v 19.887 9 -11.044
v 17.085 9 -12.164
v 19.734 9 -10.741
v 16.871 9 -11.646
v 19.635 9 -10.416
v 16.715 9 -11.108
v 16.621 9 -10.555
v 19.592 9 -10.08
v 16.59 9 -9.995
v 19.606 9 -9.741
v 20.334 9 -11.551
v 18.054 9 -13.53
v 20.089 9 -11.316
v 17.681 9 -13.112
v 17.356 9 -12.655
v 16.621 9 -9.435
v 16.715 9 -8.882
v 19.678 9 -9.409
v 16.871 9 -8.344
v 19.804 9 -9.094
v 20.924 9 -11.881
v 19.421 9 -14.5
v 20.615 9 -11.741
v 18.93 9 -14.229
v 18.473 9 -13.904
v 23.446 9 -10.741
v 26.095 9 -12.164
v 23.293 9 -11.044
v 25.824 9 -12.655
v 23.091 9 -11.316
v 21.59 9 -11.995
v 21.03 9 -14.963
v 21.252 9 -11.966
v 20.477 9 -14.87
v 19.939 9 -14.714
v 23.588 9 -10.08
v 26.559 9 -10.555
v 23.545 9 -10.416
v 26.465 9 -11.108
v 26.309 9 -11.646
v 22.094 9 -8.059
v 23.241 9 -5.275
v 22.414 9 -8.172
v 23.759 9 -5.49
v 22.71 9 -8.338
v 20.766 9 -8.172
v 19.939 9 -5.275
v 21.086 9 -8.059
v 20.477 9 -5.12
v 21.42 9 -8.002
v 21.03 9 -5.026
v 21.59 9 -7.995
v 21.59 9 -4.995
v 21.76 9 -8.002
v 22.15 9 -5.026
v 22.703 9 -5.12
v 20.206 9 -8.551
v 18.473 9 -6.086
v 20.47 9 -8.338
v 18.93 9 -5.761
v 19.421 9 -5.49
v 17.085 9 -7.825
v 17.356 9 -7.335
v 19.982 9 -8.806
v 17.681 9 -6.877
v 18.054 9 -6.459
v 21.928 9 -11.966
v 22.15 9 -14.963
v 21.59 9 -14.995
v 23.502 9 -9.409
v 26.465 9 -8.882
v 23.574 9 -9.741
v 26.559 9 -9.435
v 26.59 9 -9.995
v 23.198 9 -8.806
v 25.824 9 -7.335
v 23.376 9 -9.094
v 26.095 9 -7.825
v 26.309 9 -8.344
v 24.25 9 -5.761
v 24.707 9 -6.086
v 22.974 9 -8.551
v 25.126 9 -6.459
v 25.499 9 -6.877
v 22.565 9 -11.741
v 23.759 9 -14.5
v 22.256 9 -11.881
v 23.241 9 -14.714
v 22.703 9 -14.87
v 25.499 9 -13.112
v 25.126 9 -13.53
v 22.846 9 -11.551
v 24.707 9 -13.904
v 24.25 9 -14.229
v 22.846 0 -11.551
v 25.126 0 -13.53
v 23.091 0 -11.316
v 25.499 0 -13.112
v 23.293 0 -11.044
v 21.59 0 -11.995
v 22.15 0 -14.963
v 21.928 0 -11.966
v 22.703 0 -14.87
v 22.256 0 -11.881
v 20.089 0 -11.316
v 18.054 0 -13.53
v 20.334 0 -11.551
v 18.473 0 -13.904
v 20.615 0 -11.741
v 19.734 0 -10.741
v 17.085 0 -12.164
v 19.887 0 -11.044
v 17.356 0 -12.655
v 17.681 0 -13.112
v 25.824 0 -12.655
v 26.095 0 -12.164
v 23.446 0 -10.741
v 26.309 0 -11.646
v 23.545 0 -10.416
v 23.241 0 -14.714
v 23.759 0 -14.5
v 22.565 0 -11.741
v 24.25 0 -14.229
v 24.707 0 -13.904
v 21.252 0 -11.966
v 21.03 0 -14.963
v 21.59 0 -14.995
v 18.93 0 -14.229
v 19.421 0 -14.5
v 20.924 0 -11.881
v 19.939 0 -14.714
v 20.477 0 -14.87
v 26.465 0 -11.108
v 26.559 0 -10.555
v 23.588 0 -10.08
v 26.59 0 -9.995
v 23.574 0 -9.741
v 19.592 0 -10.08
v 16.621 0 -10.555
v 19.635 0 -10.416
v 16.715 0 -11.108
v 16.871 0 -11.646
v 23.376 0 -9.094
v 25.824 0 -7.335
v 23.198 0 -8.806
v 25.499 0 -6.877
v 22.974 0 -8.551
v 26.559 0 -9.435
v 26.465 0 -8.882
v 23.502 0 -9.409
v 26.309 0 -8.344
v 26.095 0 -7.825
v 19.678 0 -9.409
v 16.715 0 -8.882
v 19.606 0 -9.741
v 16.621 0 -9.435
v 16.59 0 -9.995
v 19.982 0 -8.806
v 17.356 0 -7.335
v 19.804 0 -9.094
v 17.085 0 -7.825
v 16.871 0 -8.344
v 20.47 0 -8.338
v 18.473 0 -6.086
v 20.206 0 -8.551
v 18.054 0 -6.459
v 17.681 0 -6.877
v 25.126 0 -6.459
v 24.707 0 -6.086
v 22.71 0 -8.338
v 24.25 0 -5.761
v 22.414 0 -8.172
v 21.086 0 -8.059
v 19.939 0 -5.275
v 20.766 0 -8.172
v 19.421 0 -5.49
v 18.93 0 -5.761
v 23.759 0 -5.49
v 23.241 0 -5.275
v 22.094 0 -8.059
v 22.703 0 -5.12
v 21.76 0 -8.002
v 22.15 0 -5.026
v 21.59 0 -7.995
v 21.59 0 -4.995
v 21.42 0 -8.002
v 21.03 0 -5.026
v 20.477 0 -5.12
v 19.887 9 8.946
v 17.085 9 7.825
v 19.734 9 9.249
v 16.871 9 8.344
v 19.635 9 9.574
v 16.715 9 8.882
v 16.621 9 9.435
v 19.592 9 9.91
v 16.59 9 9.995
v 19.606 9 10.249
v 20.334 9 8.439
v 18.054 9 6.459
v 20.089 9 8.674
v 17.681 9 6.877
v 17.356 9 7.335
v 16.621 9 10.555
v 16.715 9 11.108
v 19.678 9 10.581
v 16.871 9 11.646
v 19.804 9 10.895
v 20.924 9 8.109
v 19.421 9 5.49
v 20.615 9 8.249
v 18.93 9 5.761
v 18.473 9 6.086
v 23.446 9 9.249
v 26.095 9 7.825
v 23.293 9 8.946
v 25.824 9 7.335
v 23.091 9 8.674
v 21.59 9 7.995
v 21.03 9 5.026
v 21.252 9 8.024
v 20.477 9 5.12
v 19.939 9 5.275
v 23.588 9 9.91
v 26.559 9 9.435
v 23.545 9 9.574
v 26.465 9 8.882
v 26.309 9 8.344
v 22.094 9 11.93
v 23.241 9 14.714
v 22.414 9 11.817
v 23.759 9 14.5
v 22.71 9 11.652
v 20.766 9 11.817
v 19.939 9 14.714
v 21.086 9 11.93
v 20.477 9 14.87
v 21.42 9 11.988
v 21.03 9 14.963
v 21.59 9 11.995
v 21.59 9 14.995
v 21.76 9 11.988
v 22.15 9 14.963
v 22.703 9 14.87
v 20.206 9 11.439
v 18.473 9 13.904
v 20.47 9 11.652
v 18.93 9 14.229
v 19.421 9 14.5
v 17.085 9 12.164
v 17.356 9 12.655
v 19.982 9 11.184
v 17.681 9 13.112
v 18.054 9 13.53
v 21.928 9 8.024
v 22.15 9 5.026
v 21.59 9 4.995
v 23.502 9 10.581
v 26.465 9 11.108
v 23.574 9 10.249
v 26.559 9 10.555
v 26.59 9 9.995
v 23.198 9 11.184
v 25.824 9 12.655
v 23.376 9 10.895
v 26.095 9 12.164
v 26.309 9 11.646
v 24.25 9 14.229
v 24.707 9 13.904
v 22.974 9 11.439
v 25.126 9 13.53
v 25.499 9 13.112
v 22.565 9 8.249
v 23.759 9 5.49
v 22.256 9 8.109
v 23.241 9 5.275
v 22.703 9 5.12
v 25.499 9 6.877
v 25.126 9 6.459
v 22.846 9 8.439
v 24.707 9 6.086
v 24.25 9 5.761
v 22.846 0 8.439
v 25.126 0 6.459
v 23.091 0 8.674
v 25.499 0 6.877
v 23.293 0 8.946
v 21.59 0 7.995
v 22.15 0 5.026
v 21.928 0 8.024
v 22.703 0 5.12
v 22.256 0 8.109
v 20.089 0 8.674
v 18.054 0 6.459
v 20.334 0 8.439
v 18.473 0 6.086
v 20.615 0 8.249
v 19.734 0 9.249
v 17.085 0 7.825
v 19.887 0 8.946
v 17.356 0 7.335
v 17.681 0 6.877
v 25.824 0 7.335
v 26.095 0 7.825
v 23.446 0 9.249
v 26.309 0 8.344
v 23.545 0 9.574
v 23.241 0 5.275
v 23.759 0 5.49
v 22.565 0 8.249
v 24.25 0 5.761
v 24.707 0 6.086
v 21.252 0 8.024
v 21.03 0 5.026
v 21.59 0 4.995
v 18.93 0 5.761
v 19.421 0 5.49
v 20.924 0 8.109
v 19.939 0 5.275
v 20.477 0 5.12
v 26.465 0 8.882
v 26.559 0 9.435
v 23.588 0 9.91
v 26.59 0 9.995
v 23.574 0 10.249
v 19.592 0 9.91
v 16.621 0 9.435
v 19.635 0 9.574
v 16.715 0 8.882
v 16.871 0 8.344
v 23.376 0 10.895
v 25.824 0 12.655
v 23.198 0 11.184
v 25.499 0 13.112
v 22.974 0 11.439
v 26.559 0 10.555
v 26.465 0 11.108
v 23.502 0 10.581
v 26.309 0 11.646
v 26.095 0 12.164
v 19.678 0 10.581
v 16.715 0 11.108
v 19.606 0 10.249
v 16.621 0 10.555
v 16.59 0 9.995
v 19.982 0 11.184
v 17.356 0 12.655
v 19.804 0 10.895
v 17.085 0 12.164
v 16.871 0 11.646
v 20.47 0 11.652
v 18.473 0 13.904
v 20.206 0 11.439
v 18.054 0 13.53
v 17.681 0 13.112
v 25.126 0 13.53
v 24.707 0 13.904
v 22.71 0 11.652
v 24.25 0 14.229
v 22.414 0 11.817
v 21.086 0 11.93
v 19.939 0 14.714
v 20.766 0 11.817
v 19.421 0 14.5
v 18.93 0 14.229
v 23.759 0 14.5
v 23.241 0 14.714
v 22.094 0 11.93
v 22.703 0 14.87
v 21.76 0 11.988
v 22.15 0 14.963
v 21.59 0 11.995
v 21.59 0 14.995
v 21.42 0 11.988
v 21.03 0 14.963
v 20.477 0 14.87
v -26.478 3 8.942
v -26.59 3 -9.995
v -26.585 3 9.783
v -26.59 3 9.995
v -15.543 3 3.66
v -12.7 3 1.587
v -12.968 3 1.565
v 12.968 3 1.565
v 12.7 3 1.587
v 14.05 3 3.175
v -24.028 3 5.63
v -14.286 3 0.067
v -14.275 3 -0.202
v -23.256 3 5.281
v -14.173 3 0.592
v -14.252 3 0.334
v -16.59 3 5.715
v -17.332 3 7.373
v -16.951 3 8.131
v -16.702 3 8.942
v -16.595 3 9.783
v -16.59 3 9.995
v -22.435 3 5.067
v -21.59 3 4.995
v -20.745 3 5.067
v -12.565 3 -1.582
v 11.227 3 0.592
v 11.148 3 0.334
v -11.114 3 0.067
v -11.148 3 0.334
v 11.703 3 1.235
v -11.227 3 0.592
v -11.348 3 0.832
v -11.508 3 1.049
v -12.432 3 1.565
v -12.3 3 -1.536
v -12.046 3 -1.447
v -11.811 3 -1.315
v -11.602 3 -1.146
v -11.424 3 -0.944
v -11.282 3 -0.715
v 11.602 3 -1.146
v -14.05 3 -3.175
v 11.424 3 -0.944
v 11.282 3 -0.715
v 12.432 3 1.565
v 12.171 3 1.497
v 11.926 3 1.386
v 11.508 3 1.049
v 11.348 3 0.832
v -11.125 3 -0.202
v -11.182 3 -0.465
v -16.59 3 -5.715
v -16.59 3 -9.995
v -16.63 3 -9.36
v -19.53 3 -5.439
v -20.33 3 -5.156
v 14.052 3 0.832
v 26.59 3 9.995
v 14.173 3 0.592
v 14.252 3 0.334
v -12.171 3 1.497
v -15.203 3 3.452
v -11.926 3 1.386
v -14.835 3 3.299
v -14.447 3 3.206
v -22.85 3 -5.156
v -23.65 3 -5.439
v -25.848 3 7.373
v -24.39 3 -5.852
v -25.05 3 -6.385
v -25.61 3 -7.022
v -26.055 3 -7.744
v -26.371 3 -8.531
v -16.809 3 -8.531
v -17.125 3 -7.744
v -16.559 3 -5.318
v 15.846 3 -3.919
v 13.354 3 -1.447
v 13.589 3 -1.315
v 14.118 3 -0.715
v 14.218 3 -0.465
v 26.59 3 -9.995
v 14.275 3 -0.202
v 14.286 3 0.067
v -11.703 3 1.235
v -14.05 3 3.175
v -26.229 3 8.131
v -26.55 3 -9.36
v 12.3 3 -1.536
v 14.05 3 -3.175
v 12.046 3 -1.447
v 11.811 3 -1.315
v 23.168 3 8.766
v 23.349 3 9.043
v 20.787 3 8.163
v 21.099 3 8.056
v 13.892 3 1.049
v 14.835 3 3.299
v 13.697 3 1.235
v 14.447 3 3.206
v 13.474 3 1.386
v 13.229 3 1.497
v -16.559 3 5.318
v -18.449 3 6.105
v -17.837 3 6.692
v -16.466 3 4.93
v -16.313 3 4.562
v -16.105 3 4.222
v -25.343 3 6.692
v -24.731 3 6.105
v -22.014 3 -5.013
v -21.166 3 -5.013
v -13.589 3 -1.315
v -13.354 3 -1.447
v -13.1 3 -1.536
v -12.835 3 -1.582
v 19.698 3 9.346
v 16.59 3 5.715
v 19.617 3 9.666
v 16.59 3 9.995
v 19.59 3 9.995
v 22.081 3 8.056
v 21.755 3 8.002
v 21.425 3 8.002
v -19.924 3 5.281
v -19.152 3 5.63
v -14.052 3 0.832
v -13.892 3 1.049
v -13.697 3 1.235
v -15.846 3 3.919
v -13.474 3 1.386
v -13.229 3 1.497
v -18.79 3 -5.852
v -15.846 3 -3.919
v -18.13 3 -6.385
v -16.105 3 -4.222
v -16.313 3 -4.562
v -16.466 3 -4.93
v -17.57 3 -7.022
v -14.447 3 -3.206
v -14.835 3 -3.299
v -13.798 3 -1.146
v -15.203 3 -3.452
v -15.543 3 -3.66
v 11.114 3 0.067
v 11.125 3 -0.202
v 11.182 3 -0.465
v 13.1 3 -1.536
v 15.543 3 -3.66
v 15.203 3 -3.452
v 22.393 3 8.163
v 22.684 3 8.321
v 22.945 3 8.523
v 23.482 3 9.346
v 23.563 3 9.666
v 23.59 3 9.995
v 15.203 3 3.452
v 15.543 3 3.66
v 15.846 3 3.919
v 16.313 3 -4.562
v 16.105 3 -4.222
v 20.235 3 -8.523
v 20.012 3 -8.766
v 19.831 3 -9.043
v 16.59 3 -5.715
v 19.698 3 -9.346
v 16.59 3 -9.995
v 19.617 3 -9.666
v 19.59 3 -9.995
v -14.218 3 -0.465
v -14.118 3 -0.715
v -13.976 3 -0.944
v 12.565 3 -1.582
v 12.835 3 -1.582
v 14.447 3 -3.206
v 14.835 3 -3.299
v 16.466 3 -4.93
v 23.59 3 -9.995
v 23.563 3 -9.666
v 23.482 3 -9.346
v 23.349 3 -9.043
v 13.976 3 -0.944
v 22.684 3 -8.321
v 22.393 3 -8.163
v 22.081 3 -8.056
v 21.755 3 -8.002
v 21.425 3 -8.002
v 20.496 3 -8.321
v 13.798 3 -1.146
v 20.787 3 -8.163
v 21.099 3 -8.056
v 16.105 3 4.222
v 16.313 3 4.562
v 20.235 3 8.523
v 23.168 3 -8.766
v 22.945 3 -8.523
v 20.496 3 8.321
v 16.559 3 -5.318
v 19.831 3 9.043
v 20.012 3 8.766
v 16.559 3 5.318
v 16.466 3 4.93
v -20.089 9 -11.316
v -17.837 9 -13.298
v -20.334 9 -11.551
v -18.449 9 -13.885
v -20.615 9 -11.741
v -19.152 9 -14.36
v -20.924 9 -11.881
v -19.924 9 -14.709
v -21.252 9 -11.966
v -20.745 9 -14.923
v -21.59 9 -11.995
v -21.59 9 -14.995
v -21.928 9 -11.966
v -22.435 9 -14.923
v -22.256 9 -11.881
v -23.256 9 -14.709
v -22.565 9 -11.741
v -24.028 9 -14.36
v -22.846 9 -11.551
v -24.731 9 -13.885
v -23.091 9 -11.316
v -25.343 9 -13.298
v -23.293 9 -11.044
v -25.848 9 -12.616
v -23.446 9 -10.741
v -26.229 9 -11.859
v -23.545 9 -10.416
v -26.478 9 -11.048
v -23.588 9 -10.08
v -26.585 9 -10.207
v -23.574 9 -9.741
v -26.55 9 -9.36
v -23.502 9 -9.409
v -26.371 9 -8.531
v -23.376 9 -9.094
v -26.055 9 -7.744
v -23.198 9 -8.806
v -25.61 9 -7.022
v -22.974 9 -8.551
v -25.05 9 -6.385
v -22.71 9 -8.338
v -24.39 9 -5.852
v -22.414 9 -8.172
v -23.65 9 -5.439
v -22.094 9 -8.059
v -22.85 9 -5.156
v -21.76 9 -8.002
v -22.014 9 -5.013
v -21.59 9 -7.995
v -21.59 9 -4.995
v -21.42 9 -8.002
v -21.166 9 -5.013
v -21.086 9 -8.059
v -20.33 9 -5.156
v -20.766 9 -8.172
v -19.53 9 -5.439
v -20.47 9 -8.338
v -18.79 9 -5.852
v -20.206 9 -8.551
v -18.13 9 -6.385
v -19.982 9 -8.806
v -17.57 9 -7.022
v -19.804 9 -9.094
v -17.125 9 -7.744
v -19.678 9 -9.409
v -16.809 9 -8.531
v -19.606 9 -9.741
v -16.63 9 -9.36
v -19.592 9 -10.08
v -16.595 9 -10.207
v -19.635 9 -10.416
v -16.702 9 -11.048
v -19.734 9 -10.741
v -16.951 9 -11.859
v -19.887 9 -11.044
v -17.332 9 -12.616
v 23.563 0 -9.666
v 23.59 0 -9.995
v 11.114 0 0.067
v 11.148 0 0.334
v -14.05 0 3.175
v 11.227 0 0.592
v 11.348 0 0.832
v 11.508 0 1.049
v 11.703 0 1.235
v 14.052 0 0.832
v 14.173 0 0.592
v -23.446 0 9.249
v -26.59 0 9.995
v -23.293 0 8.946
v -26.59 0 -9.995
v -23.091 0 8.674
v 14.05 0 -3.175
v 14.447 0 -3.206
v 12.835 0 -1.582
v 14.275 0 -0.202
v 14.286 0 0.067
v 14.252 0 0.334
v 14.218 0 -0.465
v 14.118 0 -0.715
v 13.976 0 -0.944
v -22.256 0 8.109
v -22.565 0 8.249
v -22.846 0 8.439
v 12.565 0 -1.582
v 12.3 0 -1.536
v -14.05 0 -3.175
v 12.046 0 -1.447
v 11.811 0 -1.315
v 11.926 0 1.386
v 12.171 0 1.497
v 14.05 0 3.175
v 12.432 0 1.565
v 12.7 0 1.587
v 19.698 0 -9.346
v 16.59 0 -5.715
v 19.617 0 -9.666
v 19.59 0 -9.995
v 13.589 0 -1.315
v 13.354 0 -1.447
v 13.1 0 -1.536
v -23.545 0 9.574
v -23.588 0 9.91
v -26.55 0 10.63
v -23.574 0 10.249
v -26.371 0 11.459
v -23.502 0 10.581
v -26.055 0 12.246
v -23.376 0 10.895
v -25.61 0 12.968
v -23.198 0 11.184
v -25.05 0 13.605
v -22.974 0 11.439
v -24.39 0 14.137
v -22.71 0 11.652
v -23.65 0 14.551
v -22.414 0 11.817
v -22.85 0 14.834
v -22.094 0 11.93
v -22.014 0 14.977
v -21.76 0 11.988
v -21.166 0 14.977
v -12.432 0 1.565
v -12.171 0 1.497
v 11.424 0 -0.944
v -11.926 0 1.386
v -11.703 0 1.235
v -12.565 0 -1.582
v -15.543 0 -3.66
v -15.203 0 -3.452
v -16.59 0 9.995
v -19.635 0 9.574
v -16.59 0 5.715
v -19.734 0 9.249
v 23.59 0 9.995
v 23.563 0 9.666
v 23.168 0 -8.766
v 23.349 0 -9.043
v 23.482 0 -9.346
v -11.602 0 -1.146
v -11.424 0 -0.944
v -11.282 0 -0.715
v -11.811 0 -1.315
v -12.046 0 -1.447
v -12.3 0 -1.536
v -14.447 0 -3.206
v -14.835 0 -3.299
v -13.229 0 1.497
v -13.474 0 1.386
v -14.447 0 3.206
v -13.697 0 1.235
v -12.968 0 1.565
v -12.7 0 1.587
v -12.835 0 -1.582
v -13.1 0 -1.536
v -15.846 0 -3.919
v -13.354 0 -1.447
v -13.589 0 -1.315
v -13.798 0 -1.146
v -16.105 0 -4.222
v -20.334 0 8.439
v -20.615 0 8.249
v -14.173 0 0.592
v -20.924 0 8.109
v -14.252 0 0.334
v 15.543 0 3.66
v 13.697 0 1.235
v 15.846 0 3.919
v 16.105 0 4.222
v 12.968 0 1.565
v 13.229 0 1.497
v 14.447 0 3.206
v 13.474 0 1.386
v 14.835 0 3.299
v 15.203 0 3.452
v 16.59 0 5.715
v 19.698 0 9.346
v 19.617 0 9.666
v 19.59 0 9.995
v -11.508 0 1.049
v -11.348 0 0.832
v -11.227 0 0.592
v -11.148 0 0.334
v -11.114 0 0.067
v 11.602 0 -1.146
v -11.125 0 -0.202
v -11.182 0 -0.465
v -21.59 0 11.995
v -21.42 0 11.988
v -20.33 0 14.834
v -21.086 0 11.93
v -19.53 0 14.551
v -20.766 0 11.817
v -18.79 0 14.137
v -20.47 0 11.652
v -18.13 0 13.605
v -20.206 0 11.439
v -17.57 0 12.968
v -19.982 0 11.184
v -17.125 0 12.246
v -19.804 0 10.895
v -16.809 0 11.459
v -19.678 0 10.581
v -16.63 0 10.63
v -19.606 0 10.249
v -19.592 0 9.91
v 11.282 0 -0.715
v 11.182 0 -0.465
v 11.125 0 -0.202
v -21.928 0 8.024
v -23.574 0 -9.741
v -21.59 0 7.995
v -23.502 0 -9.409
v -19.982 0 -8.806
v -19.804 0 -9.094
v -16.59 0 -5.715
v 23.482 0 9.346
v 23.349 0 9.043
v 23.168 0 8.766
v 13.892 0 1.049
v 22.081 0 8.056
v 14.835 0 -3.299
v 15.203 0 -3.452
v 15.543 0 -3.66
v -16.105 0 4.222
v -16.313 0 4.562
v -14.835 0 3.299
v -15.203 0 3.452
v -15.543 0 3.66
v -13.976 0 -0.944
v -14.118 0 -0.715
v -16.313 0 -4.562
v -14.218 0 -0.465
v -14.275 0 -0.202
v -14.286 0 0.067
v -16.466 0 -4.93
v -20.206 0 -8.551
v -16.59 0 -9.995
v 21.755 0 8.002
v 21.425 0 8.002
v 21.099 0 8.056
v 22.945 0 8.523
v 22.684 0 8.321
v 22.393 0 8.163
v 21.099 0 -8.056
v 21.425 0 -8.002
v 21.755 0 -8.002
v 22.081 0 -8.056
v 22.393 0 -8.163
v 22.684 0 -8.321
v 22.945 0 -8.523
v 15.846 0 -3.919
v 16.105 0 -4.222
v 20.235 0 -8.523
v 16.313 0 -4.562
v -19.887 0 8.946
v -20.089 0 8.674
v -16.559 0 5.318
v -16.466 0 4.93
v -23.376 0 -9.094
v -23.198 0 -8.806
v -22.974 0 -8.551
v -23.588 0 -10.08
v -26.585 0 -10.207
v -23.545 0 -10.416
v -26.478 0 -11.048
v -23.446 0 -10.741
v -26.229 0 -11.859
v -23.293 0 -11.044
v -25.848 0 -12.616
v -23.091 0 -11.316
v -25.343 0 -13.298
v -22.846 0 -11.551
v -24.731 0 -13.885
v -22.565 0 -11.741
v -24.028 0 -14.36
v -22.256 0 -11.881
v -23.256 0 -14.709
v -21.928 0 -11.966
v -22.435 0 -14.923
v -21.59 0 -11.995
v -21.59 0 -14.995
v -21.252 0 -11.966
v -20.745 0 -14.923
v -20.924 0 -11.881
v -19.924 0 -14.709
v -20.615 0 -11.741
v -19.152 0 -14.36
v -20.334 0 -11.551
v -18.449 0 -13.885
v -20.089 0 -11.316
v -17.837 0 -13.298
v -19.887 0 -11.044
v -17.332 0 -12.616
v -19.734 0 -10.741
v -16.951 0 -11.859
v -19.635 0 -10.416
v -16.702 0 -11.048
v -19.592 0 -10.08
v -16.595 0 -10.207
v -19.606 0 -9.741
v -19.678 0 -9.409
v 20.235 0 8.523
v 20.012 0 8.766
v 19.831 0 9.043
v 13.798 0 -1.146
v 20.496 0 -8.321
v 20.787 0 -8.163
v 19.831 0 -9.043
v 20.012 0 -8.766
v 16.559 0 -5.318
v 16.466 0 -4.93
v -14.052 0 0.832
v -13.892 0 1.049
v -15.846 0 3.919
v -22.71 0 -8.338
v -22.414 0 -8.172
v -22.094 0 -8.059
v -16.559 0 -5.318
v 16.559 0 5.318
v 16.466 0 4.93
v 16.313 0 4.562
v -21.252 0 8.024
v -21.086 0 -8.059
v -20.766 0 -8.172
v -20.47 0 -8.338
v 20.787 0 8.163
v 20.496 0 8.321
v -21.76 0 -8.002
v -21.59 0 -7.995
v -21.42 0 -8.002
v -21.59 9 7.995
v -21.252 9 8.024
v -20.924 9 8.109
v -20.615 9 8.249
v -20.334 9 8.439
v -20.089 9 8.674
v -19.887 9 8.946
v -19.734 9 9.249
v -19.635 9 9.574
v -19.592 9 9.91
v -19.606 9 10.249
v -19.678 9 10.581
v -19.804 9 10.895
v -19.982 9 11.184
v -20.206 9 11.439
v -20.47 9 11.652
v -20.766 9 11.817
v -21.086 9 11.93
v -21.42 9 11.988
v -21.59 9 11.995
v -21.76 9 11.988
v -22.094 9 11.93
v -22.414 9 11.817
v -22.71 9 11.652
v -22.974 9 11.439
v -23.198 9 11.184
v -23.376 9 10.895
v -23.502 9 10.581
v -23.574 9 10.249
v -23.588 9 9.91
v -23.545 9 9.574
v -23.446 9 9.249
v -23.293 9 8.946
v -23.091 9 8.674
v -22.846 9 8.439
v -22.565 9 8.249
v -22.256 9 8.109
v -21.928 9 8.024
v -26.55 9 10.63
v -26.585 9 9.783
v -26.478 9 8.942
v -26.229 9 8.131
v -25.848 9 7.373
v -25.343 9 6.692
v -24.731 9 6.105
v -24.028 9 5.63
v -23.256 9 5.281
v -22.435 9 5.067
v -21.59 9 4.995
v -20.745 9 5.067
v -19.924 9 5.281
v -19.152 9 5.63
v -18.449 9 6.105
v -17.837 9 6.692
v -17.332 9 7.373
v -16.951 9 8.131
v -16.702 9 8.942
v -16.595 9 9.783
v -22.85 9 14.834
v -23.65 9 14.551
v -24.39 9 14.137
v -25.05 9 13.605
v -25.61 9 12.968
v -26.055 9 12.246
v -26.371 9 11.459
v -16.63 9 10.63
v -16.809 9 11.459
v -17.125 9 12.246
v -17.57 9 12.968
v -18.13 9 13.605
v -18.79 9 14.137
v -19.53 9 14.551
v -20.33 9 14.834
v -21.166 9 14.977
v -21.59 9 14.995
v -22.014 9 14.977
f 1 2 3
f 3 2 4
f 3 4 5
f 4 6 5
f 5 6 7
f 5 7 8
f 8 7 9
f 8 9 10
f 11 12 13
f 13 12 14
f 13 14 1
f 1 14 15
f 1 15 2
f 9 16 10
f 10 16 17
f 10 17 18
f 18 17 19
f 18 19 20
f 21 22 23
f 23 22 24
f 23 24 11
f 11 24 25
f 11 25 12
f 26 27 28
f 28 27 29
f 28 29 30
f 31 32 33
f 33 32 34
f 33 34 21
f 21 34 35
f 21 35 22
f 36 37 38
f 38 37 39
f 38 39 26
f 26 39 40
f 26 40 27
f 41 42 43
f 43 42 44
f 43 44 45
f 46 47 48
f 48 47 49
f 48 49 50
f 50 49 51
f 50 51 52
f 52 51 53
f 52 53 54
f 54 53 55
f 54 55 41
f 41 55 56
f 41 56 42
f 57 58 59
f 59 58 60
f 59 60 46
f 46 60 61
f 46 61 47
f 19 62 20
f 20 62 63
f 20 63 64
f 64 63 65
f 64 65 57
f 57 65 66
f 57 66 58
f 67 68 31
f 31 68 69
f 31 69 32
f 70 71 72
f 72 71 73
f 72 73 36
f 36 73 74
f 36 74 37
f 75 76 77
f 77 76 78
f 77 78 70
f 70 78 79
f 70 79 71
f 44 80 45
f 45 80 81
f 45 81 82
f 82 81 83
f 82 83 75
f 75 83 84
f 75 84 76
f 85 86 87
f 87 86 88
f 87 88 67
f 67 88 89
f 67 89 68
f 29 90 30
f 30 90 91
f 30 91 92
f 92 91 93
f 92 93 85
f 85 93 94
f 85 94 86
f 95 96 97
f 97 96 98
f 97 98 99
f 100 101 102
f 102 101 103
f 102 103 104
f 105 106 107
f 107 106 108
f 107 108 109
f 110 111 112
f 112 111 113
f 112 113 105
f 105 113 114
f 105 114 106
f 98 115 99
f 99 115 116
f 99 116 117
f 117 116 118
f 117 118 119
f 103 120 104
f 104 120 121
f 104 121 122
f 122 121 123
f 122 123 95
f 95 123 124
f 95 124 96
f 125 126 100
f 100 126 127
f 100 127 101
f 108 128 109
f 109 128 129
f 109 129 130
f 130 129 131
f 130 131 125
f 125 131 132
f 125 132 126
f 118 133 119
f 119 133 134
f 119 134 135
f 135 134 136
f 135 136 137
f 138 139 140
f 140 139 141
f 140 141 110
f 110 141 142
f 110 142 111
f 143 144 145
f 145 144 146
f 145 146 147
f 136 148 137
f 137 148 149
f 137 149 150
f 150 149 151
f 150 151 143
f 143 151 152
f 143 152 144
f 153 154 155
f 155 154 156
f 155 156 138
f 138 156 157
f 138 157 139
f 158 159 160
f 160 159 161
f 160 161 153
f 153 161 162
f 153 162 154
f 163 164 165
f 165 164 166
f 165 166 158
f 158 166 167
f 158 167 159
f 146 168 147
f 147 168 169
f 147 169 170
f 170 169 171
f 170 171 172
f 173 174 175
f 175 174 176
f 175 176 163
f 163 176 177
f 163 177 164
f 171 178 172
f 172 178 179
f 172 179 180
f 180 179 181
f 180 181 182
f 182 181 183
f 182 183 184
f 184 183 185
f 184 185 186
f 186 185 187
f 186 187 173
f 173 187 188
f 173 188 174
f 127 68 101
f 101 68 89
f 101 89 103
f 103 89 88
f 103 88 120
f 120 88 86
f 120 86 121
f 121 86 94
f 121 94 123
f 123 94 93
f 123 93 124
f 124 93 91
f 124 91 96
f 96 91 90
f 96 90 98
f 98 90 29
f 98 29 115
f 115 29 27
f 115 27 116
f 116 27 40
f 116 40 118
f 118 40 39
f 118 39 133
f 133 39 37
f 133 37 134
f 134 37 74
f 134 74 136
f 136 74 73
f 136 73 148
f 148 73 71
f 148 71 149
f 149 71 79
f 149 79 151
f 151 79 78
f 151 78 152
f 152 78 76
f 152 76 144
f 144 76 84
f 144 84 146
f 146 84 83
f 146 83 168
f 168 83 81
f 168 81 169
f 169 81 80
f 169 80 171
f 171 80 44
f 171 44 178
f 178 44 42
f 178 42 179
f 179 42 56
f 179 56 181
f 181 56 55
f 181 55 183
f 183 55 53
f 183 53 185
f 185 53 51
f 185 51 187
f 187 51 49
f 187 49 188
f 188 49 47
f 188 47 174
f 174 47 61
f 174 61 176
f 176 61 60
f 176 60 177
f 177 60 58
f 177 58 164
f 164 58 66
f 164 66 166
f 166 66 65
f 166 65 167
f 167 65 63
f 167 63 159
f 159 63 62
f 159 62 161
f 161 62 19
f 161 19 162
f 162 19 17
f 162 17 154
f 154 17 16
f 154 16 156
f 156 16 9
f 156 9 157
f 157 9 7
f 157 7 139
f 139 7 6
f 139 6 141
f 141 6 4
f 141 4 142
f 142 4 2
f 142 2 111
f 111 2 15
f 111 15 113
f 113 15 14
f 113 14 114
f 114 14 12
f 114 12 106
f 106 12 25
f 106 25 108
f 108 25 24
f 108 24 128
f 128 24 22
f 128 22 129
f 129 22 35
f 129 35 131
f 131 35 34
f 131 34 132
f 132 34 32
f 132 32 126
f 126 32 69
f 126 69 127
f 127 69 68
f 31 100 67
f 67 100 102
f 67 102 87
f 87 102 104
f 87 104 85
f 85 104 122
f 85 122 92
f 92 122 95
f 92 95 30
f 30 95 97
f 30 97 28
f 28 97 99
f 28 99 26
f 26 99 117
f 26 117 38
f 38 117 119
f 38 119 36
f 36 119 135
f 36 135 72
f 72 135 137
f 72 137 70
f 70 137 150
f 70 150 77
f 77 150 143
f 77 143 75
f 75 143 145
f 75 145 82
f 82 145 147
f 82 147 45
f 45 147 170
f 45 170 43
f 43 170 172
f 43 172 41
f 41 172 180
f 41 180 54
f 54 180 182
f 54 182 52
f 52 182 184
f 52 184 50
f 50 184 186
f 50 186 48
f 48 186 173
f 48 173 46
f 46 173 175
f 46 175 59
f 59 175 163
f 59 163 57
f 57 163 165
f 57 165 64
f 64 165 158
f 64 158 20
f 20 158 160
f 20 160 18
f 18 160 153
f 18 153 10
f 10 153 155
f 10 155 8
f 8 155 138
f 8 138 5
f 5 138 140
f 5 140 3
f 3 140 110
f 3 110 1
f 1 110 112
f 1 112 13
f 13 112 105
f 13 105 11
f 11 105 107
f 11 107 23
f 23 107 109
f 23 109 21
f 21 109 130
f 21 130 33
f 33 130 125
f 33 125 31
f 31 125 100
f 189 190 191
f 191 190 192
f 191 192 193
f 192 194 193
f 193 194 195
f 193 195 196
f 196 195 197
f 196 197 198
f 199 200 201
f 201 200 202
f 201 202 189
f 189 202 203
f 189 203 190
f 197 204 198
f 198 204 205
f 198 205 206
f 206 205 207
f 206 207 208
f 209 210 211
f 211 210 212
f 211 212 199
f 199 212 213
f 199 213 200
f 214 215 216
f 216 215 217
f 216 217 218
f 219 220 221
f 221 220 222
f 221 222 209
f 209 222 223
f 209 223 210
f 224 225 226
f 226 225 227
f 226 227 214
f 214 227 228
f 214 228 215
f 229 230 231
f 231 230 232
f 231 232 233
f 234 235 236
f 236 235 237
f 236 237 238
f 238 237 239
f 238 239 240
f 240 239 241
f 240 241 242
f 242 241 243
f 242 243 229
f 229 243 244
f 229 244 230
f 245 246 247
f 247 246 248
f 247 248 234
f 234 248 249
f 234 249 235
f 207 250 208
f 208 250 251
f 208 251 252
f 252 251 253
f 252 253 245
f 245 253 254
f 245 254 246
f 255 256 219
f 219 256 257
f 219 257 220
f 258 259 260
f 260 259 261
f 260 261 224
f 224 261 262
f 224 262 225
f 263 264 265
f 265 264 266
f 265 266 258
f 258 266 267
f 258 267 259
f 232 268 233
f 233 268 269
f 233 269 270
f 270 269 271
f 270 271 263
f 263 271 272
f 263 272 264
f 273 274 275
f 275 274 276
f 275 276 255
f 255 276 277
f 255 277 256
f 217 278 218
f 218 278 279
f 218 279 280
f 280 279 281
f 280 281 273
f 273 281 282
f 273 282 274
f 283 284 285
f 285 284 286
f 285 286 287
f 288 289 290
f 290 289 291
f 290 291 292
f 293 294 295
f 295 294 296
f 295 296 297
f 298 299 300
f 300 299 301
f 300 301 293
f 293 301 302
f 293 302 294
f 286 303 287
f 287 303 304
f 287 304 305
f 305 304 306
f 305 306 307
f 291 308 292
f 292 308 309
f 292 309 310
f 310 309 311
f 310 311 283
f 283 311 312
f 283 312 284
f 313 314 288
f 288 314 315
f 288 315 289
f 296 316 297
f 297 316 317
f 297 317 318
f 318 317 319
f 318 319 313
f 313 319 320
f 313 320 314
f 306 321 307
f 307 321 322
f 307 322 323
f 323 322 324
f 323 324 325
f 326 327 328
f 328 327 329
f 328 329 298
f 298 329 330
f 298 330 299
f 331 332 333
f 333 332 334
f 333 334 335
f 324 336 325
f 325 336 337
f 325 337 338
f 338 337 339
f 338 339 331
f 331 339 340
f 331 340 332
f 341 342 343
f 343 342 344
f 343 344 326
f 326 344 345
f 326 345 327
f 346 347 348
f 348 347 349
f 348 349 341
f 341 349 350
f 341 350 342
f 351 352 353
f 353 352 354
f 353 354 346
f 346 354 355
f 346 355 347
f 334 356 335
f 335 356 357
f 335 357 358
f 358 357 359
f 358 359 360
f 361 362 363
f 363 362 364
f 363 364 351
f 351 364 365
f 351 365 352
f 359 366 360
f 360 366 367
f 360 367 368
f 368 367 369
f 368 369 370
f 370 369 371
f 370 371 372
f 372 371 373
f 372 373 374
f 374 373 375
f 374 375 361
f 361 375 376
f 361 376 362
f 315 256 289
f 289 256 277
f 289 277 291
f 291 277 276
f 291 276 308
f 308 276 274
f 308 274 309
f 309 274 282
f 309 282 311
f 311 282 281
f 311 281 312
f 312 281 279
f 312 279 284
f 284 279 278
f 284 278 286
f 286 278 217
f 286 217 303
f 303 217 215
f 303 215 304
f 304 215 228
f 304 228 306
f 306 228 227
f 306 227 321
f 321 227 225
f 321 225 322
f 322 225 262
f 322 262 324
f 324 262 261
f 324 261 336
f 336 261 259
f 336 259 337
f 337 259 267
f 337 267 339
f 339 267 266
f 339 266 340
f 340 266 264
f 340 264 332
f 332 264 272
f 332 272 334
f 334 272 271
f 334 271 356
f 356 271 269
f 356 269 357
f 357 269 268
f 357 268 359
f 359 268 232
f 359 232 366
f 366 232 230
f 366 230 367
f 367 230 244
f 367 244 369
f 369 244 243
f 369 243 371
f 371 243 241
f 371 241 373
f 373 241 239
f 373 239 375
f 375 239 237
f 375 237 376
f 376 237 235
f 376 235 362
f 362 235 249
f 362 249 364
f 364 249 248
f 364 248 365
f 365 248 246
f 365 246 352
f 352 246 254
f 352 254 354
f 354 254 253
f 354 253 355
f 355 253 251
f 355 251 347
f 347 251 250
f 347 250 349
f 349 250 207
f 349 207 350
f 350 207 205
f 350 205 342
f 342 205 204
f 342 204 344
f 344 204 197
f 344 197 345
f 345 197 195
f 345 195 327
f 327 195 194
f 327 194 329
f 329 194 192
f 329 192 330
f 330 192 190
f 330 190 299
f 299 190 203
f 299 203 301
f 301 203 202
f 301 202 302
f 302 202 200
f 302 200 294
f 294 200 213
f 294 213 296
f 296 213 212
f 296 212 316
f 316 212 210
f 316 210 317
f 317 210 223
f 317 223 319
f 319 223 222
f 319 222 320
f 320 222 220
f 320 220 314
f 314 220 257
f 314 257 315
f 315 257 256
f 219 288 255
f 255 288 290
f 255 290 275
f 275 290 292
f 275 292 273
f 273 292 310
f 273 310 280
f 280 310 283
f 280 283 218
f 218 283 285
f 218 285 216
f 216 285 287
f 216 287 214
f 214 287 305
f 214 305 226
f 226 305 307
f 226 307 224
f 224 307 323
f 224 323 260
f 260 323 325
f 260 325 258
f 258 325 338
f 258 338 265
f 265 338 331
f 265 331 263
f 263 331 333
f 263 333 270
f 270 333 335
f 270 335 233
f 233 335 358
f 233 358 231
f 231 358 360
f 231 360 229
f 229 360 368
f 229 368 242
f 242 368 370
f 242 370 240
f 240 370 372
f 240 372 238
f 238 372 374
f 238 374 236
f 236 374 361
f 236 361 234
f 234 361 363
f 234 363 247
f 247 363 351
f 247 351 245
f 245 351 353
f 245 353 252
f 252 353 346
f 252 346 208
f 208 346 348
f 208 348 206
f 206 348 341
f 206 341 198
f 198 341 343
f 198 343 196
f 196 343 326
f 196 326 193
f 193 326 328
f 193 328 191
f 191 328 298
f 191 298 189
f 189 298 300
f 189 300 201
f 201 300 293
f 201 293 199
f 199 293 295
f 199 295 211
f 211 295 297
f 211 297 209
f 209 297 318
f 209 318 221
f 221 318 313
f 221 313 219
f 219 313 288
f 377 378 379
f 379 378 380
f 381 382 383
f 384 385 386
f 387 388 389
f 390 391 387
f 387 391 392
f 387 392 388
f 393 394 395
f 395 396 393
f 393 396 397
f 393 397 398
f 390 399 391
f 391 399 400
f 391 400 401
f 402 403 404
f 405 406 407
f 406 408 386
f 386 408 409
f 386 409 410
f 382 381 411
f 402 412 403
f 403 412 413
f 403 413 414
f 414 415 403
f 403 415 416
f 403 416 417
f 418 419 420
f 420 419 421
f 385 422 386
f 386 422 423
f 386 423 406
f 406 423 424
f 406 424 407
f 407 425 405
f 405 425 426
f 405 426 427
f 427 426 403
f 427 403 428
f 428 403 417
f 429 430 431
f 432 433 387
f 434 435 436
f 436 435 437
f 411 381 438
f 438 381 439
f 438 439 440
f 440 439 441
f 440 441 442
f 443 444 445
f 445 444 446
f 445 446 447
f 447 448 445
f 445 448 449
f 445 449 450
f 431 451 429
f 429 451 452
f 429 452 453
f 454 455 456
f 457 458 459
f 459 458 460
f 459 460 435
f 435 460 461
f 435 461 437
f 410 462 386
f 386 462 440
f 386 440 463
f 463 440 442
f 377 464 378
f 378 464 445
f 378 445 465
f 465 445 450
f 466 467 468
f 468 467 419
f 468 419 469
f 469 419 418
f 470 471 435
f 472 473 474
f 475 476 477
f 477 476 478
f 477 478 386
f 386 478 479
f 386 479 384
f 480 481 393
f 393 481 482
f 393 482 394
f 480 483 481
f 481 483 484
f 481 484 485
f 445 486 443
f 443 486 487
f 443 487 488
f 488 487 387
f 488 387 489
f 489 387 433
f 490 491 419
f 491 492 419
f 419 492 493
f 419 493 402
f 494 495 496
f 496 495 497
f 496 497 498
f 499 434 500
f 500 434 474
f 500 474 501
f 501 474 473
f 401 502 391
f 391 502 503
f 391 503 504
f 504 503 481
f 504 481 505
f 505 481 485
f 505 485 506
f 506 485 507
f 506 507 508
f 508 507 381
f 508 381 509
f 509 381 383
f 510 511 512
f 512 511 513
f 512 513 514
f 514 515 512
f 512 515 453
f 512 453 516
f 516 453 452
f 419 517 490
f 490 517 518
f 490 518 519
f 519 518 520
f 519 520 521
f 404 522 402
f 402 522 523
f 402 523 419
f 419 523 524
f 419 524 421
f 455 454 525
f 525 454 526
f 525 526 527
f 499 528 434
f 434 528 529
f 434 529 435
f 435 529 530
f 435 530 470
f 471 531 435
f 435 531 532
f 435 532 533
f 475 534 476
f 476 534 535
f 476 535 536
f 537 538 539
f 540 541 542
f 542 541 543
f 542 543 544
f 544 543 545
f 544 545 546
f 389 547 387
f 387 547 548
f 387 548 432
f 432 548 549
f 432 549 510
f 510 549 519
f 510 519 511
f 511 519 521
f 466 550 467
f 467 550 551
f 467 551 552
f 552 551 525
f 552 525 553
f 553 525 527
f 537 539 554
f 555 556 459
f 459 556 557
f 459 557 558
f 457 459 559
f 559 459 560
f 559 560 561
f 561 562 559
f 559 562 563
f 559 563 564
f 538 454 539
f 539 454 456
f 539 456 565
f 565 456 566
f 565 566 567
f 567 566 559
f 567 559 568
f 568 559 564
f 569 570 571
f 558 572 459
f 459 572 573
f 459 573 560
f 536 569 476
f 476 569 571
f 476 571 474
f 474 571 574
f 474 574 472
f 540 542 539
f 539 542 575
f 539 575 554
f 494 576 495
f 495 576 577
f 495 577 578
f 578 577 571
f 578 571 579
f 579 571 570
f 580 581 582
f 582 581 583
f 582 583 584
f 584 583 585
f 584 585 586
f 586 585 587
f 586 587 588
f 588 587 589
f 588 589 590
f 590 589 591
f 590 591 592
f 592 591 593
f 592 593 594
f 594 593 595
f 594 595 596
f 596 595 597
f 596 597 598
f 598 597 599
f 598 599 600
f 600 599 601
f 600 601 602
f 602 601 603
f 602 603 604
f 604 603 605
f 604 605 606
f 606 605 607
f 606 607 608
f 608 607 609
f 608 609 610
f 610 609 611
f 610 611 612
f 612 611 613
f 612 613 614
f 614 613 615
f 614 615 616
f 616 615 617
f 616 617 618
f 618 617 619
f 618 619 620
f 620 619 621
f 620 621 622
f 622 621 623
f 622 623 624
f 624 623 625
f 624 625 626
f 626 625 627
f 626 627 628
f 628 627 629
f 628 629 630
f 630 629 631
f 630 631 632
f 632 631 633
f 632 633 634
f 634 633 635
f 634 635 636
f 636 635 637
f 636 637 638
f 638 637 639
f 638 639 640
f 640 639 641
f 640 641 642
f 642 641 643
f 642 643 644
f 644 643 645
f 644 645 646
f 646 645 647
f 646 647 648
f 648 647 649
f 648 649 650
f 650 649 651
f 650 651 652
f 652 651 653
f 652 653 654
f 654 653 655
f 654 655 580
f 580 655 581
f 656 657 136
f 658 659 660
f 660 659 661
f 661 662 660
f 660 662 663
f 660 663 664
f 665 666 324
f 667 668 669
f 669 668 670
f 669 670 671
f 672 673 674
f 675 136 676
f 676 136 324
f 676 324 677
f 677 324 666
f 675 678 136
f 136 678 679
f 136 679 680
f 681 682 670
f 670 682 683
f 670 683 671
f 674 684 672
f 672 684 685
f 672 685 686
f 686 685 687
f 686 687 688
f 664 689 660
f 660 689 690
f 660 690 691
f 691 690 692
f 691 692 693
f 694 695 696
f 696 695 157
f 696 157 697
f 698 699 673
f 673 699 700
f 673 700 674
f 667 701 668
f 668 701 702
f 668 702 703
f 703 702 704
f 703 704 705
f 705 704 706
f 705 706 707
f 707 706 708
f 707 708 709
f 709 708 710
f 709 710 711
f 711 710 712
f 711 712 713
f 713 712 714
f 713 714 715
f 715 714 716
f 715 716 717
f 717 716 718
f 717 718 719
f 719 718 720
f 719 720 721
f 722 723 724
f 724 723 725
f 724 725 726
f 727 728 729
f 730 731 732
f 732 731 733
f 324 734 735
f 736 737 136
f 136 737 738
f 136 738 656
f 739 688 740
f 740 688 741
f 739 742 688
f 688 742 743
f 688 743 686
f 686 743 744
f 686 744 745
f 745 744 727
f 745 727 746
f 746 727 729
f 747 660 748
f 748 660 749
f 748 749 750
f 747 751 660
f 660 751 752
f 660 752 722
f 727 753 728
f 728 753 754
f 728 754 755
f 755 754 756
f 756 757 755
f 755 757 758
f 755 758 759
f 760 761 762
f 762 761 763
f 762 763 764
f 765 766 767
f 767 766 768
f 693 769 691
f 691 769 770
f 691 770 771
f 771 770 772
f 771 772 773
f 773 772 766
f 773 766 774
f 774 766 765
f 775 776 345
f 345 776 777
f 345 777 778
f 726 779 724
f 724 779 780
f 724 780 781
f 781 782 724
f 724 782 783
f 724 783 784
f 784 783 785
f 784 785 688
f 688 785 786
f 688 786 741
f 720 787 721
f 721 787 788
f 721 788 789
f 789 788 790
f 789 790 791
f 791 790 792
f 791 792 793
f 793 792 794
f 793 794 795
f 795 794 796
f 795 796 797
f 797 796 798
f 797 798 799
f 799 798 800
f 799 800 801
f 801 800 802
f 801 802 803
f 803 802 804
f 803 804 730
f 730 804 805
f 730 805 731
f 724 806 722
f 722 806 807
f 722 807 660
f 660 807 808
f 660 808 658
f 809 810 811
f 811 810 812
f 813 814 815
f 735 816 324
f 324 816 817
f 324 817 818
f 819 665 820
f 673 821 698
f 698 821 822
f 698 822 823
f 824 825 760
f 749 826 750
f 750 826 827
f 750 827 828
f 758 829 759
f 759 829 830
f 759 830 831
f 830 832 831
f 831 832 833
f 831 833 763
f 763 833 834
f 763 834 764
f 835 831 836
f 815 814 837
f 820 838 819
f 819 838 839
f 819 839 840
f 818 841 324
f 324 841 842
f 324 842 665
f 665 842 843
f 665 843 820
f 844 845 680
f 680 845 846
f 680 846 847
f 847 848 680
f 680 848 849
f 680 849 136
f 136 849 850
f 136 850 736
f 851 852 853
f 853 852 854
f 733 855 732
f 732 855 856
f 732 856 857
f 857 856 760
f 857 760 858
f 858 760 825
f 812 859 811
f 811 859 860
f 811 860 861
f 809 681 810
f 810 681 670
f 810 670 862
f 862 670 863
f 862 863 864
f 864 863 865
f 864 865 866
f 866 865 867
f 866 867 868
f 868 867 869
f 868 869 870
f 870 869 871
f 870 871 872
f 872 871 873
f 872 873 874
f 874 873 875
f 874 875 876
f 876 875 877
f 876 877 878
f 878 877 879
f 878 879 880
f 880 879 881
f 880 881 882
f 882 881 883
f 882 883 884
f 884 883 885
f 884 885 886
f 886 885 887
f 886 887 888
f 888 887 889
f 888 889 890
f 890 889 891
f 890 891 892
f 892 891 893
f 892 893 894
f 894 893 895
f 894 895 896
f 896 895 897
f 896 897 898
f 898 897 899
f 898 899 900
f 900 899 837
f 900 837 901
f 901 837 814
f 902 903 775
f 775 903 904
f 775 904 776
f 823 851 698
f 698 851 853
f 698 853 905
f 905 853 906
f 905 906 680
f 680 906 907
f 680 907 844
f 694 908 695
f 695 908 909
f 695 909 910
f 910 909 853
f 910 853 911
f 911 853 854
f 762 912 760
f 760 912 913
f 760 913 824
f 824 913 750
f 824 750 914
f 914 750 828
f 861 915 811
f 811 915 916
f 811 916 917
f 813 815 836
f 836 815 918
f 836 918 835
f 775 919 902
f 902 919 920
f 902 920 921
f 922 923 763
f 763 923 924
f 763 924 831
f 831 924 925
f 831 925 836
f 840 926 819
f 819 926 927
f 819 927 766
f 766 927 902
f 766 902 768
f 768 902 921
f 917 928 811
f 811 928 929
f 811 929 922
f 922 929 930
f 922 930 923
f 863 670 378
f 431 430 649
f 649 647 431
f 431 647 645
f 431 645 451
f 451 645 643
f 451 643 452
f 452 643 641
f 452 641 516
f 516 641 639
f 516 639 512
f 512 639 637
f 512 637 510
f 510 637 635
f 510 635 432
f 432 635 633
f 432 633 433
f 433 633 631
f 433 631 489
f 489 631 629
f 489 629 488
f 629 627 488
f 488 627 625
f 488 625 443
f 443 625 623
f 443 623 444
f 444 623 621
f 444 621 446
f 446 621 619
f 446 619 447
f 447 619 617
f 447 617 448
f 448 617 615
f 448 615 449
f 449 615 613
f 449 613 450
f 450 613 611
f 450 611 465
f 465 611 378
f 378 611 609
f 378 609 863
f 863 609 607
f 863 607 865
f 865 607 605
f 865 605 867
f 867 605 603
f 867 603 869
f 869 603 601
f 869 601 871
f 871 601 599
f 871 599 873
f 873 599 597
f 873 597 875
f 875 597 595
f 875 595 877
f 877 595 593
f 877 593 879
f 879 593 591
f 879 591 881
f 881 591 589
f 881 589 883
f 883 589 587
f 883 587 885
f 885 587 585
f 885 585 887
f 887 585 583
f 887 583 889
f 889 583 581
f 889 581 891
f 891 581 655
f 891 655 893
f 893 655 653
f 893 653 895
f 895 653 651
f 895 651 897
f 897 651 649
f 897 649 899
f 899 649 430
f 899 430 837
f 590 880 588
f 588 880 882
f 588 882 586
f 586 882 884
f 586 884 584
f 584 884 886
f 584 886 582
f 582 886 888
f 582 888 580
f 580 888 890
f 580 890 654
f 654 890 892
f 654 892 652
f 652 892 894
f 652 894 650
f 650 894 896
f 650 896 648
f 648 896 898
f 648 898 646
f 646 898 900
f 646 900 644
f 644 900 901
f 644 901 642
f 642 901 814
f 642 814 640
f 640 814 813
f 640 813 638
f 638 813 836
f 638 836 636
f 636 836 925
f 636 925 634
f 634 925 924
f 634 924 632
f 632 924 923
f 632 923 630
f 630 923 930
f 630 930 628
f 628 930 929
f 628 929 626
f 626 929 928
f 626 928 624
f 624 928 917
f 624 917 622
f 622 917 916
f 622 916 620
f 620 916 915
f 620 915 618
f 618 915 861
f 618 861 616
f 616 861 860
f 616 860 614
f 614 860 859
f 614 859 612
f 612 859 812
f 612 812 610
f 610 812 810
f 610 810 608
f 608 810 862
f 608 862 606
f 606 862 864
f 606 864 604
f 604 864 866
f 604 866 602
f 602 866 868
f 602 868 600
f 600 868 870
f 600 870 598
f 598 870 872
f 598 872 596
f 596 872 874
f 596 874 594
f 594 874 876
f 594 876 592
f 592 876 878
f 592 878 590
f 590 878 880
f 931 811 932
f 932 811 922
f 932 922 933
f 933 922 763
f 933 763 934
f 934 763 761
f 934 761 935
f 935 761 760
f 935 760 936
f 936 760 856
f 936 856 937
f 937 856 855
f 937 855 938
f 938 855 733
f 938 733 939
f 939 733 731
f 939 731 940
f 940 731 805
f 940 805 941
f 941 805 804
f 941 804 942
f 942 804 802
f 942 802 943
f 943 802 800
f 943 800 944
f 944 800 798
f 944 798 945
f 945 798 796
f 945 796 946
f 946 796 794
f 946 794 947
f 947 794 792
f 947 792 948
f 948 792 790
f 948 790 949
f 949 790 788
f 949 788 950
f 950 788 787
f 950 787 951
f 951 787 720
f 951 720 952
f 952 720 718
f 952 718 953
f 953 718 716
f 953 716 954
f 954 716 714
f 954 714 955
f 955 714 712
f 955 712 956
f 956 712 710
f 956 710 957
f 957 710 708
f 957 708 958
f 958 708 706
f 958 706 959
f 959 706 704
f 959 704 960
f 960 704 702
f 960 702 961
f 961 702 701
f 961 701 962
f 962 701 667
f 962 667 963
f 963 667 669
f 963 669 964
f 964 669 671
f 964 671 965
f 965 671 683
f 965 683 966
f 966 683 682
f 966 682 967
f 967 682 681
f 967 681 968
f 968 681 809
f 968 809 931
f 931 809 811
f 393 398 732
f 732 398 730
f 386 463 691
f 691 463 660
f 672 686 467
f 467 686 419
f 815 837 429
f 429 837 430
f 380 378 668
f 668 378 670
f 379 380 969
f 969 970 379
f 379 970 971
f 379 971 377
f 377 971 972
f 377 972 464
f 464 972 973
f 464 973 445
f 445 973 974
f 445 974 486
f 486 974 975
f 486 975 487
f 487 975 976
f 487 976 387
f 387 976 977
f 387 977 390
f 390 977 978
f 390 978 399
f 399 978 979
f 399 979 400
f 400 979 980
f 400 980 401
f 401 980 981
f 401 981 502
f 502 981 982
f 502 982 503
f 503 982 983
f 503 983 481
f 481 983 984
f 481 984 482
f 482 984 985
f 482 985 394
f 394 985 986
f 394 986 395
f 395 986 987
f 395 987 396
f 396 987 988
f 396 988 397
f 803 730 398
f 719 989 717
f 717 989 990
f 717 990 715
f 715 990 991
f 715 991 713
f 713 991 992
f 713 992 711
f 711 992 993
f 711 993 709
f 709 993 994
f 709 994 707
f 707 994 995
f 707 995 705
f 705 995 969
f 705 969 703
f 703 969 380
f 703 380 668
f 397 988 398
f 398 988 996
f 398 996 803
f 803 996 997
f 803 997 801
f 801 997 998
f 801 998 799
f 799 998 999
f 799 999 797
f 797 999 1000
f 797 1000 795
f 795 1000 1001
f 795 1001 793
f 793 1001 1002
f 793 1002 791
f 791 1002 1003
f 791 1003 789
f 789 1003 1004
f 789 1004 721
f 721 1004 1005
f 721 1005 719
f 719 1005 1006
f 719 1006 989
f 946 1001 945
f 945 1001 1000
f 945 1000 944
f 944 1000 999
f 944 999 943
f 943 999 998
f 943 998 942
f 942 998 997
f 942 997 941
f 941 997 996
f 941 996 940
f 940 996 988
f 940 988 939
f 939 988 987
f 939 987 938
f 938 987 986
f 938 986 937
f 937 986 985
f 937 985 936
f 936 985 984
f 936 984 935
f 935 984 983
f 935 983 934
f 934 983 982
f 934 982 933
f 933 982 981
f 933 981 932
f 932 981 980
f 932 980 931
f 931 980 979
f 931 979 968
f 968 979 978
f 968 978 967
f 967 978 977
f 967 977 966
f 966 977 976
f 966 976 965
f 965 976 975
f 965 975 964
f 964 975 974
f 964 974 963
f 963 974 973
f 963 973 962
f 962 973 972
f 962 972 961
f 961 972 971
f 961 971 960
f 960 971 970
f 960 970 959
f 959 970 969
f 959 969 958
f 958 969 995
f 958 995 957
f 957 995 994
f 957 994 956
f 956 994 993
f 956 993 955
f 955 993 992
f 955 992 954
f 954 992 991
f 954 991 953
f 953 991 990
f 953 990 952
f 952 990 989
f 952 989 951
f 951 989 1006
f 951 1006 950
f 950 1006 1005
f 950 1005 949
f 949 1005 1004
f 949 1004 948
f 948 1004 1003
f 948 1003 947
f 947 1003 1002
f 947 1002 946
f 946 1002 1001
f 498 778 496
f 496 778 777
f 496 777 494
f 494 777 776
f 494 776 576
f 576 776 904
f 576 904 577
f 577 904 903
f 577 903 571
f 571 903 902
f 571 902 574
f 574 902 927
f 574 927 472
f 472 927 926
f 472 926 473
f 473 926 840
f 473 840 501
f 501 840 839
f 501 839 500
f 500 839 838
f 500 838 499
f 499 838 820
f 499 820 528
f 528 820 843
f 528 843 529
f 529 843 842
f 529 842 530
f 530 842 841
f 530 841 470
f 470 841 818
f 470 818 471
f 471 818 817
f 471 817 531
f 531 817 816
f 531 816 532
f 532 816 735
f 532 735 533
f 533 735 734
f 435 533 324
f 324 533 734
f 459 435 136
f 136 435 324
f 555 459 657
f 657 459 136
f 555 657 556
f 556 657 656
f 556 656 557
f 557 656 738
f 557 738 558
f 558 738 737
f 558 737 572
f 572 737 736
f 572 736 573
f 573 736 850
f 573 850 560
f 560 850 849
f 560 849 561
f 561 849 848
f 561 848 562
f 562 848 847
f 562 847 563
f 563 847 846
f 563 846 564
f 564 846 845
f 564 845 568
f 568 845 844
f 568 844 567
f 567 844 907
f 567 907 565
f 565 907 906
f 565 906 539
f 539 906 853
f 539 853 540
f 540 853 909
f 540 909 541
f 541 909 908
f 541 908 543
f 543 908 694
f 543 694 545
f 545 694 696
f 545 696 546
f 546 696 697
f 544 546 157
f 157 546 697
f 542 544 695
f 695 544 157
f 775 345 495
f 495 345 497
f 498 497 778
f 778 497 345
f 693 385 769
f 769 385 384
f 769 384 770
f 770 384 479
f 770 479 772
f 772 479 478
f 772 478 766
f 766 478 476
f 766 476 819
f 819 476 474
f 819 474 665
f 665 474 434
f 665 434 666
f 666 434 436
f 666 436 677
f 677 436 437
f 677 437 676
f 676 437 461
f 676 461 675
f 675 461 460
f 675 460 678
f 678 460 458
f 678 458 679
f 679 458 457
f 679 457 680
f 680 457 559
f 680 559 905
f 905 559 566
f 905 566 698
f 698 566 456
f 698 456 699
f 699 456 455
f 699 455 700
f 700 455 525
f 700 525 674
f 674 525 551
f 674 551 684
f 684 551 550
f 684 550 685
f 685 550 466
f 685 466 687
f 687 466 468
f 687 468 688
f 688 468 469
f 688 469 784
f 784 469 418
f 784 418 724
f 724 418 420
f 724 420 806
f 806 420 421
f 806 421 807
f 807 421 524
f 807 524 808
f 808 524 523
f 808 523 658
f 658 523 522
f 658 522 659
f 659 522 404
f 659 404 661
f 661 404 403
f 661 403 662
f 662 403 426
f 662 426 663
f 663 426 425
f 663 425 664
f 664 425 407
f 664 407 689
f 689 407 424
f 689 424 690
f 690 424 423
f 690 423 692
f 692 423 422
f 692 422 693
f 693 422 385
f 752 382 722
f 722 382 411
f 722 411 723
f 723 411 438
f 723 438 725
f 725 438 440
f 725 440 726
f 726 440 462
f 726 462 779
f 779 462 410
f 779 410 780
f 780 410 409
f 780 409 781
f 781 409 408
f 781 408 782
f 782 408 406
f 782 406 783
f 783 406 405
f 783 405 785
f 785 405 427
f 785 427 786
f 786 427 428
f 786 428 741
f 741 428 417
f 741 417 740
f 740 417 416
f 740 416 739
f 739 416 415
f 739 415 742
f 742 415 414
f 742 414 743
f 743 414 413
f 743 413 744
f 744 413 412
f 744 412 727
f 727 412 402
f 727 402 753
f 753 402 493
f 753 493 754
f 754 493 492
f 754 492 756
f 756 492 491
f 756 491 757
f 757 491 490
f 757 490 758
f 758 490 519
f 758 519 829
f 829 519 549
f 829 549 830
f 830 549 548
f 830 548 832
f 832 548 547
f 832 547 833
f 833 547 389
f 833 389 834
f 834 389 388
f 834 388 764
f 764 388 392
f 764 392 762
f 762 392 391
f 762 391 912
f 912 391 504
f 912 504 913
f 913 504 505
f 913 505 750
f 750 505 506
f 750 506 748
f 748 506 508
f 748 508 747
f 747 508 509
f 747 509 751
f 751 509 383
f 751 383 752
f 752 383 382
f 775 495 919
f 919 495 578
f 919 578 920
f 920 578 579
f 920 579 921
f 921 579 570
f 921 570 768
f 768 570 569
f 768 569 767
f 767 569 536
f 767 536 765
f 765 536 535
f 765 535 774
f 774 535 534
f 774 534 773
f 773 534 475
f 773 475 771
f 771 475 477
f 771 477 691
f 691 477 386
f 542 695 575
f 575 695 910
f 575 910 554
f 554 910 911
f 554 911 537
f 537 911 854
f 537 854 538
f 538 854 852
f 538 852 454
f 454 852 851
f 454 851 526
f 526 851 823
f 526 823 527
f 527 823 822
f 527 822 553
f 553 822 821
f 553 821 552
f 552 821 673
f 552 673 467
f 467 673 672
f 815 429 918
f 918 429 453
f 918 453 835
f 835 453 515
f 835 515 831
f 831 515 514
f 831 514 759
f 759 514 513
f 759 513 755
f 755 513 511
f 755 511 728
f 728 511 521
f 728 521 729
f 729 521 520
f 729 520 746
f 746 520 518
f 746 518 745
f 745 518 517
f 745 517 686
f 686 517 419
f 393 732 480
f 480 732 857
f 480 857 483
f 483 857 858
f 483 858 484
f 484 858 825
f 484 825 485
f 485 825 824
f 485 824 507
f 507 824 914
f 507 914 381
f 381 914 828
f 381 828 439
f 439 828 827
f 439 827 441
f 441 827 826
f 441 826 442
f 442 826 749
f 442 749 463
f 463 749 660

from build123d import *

# Parameters (mm, degrees)
SKETCH4_R             = 5
SKETCH4_R_2           = 2
BOSS_EXTRUDE3_DEPTH   = 9
BOSS_EXTRUDE3_2_DEPTH = 9
BOSS_EXTRUDE3_3_DEPTH = 9
BOSS_EXTRUDE3_4_DEPTH = 9
BOSS_EXTRUDE4_DEPTH   = 3
SKETCH6_R             = 1.5875
CUT_EXTRUDE1_DEPTH    = 32.110691506
FILLET1_R             = 2.54


with BuildPart() as part:
    # Sketch4 → Boss-Extrude3 (new body)
    with BuildSketch(Plane(origin=(0, 0, 0), x_dir=(1, 0, 0), z_dir=(0, 1, 0))):
        with Locations(Location((-21.59, 9.9949, 0), (0, 0, 270))):
            Circle(SKETCH4_R)
        with Locations(Location((-21.59, 9.9949, 0), (0, 0, 270))):
            Circle(SKETCH4_R_2, mode=Mode.SUBTRACT)
    extrude(amount=BOSS_EXTRUDE3_DEPTH)



with BuildPart() as body_2:
    # Sketch4 → Boss-Extrude3 2 (new body)
    with BuildSketch(Plane(origin=(0, 0, 0), x_dir=(1, 0, 0), z_dir=(0, 1, 0))):
        with Locations(Location((-21.59, -9.9949, 0), (0, 0, 270))):
            Circle(SKETCH4_R)
        with Locations(Location((-21.59, -9.9949, 0), (0, 0, 270))):
            Circle(SKETCH4_R_2, mode=Mode.SUBTRACT)
    extrude(amount=BOSS_EXTRUDE3_2_DEPTH)


with BuildPart() as body_3:
    # Sketch4 → Boss-Extrude3 3 (new body)
    with BuildSketch(Plane(origin=(0, 0, 0), x_dir=(1, 0, 0), z_dir=(0, 1, 0))):
        with Locations(Location((21.59, 9.9949, 0), (0, 0, 270))):
            Circle(SKETCH4_R)
        with Locations(Location((21.59, 9.9949, 0), (0, 0, 270))):
            Circle(SKETCH4_R_2, mode=Mode.SUBTRACT)
    extrude(amount=BOSS_EXTRUDE3_3_DEPTH)


with BuildPart() as body_4:
    # Sketch4 → Boss-Extrude3 4 (new body)
    with BuildSketch(Plane(origin=(0, 0, 0), x_dir=(1, 0, 0), z_dir=(0, 1, 0))):
        with Locations(Location((21.59, -9.9949, 0), (0, 0, 270))):
            Circle(SKETCH4_R)
        with Locations(Location((21.59, -9.9949, 0), (0, 0, 270))):
            Circle(SKETCH4_R_2, mode=Mode.SUBTRACT)
    extrude(amount=BOSS_EXTRUDE3_4_DEPTH)


with BuildPart() as part_1:
    add(part.part)

    add(body_2.part)  # Boss-Extrude4 merges body 2
    # Sketch5 → Boss-Extrude4 (add)
    with BuildSketch(Plane(origin=(0, 0, 0), x_dir=(1, 0, 0), z_dir=(0, 1, 0))):
        with BuildLine():
            ThreePointArc((-23.59, -9.9949), (-21.59, -7.9949), (-19.59, -9.9949))
            Line((-19.59, -9.9949), (-16.59, -9.9949))
            Line((-16.59, -9.9949), (-16.59, -3.175))
            Line((-16.59, -3.175), (0, -3.175))
            Line((0, -3.175), (0, 3.175))
            Line((0, 3.175), (-16.59, 3.175))
            Line((-16.59, 3.175), (-16.59, 9.9949))
            Line((-16.59, 9.9949), (-19.59, 9.9949))
            ThreePointArc((-19.59, 9.9949), (-21.59, 7.9949), (-23.59, 9.9949))
            Line((-23.59, 9.9949), (-26.59, 9.9949))
            Line((-26.59, 9.9949), (-26.59, -9.9949))
            Line((-26.59, -9.9949), (-23.59, -9.9949))
        make_face()
    boss_extrude4 = extrude(amount=BOSS_EXTRUDE4_DEPTH)

    # Mirror1: Boss-Extrude4 across plane
    add(boss_extrude4.mirror(Plane(origin=(0, 0, 0), x_dir=(0, 0, 1), z_dir=(1, 0, 0))))

    # Sketch6 → Cut-Extrude1 (cut, through all)
    with BuildSketch(Plane(origin=(0, 3, 0), x_dir=(1, 0, 0), z_dir=(0, 1, 0))):
        with Locations(Location((-12.7, 0, 0), (0, 0, 270))):
            Circle(SKETCH6_R)
        with Locations(Location((12.7, 0, 0), (0, 0, 270))):
            Circle(SKETCH6_R)
    extrude(amount=-CUT_EXTRUDE1_DEPTH, mode=Mode.SUBTRACT)

    # Fillet1
    fillet1_edges = [part_1.edges().sort_by_distance(p)[0] for p in [
        (-16.59, 1.5, 3.175),
        (-16.59, 1.5, -3.175),
        (16.59, 1.5, -3.175),
        (16.59, 1.5, 3.175),
    ]]
    fillet(fillet1_edges, radius=FILLET1_R)


solid = Compound([body_3.part, body_4.part, part_1.part])
